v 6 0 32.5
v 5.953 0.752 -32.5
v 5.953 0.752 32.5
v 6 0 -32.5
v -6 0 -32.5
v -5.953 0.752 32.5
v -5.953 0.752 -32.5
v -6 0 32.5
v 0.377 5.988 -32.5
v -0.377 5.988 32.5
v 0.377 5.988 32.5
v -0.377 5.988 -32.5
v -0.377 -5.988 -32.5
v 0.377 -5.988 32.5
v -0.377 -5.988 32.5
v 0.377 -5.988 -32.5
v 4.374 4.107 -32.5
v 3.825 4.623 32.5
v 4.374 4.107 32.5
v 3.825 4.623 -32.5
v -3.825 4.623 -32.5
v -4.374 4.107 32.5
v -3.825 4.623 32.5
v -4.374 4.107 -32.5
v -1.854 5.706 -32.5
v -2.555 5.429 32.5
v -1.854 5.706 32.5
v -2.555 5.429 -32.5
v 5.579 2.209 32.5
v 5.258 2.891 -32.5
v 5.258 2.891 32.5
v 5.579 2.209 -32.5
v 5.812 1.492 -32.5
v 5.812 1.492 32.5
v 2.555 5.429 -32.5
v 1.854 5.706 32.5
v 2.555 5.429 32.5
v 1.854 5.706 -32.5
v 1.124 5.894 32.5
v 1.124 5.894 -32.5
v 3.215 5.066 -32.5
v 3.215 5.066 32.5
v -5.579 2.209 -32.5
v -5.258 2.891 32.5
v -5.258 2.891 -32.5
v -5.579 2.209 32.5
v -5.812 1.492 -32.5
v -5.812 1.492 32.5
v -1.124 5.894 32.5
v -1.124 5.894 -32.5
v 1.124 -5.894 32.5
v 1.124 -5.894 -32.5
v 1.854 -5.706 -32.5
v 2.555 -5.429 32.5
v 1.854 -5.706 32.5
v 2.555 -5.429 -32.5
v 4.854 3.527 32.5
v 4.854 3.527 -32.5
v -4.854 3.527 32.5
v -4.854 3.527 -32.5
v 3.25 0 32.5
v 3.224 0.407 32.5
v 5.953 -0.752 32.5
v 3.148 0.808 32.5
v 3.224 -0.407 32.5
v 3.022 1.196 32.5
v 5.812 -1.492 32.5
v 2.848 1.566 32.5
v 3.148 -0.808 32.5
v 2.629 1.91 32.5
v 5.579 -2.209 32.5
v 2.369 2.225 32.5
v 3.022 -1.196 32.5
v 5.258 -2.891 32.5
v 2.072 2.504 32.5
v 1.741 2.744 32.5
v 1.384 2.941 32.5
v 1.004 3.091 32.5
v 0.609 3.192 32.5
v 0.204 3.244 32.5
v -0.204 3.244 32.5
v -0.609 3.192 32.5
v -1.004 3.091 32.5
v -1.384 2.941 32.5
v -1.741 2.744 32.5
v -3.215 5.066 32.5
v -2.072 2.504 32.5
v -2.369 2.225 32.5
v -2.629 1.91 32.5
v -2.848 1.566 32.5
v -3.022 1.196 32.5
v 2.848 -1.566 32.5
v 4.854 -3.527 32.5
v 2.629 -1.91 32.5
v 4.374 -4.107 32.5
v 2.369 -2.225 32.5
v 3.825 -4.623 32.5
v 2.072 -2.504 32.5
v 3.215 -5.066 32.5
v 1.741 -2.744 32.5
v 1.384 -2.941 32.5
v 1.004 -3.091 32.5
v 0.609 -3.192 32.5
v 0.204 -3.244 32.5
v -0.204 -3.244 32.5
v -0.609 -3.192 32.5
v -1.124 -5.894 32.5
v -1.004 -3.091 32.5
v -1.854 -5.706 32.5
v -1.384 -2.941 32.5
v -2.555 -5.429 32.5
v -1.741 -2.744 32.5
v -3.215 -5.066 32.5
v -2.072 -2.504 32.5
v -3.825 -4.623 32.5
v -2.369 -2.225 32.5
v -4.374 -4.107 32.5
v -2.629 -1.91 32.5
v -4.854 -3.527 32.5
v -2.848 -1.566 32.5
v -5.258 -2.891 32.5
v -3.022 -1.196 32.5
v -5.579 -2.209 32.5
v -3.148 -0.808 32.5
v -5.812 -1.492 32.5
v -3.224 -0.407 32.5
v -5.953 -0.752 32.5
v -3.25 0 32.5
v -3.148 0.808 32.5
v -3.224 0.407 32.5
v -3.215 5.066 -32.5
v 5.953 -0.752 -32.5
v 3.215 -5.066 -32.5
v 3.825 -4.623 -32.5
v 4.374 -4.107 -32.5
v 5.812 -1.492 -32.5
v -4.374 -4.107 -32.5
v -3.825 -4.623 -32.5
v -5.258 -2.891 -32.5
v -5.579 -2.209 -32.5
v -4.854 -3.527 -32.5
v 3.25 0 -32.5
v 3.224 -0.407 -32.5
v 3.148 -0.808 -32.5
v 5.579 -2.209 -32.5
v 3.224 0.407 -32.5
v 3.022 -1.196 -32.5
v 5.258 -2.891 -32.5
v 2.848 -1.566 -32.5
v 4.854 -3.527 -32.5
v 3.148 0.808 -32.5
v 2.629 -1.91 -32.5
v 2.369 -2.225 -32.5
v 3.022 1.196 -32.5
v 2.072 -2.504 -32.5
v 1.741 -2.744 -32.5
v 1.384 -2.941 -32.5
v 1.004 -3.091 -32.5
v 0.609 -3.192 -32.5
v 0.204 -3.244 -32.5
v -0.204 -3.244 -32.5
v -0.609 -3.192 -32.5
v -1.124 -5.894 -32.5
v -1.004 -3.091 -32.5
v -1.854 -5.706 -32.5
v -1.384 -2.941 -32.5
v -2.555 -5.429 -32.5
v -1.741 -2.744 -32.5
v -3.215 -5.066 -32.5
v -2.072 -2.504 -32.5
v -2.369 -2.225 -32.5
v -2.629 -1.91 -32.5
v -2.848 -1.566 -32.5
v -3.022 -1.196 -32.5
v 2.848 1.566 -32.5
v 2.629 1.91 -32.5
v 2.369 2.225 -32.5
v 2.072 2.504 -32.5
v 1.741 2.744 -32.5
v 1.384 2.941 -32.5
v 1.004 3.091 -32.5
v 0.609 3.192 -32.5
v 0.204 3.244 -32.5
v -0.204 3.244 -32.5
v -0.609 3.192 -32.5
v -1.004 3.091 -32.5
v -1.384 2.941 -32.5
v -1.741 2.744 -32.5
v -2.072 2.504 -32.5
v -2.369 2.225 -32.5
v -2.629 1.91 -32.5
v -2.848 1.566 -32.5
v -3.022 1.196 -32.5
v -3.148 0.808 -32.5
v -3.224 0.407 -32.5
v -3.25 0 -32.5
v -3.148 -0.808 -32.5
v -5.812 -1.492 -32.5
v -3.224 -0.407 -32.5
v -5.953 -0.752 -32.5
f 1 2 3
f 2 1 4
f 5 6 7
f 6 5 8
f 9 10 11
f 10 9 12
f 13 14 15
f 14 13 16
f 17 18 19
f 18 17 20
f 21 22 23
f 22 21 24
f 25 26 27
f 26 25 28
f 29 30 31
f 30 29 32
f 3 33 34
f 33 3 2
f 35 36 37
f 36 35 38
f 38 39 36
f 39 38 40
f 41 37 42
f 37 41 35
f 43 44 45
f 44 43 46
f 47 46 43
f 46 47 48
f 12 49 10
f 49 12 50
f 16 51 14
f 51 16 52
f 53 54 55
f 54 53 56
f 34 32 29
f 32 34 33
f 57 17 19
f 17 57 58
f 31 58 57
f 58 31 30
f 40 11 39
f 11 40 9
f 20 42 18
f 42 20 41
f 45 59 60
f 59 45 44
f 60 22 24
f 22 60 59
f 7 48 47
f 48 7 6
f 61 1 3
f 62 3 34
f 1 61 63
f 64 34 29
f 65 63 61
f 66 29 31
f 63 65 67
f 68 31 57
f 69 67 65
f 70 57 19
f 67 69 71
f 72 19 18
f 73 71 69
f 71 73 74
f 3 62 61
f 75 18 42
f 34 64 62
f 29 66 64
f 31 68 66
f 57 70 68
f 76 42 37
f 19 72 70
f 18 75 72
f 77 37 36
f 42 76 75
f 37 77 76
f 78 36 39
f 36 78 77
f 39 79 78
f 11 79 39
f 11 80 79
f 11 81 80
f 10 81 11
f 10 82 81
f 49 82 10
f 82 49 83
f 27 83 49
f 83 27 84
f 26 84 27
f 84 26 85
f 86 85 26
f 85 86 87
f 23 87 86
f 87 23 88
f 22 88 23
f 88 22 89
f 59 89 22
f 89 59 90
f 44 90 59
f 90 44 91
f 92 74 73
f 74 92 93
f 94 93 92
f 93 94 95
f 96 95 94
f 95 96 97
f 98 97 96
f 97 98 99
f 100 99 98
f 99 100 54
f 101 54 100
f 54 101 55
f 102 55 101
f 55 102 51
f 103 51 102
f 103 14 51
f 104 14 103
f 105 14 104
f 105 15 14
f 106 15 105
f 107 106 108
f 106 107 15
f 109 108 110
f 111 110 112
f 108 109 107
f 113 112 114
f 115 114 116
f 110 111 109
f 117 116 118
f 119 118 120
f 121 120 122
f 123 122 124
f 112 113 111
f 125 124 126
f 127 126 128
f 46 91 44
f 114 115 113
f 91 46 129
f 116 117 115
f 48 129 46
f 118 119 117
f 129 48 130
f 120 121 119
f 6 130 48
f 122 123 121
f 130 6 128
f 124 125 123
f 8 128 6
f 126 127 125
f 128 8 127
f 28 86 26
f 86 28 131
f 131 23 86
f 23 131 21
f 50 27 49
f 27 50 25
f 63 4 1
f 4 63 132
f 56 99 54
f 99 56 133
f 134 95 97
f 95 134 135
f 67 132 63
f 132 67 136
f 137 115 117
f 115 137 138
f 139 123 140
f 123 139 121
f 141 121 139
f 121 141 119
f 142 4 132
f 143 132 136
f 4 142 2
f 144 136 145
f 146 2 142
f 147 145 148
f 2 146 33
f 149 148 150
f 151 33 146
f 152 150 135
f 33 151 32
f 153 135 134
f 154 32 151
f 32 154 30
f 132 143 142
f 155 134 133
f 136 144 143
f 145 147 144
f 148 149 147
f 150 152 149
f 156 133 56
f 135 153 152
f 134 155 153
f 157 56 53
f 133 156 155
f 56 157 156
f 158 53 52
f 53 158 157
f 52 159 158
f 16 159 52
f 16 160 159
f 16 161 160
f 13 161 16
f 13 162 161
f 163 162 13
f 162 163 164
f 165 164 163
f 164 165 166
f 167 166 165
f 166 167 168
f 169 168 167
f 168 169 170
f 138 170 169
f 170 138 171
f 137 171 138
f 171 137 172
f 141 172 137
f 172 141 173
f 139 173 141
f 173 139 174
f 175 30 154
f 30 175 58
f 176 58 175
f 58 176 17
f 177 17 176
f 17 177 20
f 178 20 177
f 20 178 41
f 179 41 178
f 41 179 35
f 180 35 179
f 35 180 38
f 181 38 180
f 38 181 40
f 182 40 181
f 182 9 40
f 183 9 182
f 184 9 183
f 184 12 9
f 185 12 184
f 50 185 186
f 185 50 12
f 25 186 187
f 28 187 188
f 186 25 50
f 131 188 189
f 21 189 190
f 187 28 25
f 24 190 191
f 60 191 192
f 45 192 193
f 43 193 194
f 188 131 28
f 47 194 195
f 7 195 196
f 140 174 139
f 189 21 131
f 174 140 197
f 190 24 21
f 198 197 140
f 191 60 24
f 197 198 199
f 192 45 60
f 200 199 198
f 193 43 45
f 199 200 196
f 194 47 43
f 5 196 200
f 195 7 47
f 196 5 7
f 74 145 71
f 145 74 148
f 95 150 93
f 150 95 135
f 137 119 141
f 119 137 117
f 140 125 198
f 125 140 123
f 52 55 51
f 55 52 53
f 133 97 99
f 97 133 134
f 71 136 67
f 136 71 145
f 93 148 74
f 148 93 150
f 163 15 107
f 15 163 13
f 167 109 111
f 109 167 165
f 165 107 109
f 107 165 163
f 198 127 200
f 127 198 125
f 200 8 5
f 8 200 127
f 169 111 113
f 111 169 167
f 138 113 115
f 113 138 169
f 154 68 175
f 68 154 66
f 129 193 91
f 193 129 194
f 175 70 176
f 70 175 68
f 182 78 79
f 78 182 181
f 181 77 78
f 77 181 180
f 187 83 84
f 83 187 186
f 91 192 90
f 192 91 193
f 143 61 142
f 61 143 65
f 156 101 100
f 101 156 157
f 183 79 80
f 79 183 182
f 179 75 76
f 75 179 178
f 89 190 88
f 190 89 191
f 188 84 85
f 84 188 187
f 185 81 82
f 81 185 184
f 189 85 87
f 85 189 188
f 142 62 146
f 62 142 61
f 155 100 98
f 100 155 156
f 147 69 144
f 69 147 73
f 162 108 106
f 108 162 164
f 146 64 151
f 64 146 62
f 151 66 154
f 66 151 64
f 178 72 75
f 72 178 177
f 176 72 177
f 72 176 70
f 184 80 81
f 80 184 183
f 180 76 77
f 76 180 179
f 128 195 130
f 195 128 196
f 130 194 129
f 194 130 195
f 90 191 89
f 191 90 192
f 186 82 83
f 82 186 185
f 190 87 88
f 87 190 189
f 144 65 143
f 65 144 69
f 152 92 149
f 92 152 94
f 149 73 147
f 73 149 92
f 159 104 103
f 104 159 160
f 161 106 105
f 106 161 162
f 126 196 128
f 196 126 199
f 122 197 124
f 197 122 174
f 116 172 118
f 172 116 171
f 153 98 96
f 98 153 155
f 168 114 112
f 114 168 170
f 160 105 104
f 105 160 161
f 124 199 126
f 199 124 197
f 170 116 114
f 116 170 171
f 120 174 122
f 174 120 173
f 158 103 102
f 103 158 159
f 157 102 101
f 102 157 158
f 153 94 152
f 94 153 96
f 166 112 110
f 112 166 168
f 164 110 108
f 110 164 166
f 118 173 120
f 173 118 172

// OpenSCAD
$fn = 50;


difference() {
	union() {
		translate(v = [0, 0, -32.5000000000]) {
			cylinder(h = 65, r = 6.0000000000);
		}
	}
	union() {
		translate(v = [0, 0, -100.0000000000]) {
			cylinder(h = 200, r = 3.2500000000);
		}
	}
}
